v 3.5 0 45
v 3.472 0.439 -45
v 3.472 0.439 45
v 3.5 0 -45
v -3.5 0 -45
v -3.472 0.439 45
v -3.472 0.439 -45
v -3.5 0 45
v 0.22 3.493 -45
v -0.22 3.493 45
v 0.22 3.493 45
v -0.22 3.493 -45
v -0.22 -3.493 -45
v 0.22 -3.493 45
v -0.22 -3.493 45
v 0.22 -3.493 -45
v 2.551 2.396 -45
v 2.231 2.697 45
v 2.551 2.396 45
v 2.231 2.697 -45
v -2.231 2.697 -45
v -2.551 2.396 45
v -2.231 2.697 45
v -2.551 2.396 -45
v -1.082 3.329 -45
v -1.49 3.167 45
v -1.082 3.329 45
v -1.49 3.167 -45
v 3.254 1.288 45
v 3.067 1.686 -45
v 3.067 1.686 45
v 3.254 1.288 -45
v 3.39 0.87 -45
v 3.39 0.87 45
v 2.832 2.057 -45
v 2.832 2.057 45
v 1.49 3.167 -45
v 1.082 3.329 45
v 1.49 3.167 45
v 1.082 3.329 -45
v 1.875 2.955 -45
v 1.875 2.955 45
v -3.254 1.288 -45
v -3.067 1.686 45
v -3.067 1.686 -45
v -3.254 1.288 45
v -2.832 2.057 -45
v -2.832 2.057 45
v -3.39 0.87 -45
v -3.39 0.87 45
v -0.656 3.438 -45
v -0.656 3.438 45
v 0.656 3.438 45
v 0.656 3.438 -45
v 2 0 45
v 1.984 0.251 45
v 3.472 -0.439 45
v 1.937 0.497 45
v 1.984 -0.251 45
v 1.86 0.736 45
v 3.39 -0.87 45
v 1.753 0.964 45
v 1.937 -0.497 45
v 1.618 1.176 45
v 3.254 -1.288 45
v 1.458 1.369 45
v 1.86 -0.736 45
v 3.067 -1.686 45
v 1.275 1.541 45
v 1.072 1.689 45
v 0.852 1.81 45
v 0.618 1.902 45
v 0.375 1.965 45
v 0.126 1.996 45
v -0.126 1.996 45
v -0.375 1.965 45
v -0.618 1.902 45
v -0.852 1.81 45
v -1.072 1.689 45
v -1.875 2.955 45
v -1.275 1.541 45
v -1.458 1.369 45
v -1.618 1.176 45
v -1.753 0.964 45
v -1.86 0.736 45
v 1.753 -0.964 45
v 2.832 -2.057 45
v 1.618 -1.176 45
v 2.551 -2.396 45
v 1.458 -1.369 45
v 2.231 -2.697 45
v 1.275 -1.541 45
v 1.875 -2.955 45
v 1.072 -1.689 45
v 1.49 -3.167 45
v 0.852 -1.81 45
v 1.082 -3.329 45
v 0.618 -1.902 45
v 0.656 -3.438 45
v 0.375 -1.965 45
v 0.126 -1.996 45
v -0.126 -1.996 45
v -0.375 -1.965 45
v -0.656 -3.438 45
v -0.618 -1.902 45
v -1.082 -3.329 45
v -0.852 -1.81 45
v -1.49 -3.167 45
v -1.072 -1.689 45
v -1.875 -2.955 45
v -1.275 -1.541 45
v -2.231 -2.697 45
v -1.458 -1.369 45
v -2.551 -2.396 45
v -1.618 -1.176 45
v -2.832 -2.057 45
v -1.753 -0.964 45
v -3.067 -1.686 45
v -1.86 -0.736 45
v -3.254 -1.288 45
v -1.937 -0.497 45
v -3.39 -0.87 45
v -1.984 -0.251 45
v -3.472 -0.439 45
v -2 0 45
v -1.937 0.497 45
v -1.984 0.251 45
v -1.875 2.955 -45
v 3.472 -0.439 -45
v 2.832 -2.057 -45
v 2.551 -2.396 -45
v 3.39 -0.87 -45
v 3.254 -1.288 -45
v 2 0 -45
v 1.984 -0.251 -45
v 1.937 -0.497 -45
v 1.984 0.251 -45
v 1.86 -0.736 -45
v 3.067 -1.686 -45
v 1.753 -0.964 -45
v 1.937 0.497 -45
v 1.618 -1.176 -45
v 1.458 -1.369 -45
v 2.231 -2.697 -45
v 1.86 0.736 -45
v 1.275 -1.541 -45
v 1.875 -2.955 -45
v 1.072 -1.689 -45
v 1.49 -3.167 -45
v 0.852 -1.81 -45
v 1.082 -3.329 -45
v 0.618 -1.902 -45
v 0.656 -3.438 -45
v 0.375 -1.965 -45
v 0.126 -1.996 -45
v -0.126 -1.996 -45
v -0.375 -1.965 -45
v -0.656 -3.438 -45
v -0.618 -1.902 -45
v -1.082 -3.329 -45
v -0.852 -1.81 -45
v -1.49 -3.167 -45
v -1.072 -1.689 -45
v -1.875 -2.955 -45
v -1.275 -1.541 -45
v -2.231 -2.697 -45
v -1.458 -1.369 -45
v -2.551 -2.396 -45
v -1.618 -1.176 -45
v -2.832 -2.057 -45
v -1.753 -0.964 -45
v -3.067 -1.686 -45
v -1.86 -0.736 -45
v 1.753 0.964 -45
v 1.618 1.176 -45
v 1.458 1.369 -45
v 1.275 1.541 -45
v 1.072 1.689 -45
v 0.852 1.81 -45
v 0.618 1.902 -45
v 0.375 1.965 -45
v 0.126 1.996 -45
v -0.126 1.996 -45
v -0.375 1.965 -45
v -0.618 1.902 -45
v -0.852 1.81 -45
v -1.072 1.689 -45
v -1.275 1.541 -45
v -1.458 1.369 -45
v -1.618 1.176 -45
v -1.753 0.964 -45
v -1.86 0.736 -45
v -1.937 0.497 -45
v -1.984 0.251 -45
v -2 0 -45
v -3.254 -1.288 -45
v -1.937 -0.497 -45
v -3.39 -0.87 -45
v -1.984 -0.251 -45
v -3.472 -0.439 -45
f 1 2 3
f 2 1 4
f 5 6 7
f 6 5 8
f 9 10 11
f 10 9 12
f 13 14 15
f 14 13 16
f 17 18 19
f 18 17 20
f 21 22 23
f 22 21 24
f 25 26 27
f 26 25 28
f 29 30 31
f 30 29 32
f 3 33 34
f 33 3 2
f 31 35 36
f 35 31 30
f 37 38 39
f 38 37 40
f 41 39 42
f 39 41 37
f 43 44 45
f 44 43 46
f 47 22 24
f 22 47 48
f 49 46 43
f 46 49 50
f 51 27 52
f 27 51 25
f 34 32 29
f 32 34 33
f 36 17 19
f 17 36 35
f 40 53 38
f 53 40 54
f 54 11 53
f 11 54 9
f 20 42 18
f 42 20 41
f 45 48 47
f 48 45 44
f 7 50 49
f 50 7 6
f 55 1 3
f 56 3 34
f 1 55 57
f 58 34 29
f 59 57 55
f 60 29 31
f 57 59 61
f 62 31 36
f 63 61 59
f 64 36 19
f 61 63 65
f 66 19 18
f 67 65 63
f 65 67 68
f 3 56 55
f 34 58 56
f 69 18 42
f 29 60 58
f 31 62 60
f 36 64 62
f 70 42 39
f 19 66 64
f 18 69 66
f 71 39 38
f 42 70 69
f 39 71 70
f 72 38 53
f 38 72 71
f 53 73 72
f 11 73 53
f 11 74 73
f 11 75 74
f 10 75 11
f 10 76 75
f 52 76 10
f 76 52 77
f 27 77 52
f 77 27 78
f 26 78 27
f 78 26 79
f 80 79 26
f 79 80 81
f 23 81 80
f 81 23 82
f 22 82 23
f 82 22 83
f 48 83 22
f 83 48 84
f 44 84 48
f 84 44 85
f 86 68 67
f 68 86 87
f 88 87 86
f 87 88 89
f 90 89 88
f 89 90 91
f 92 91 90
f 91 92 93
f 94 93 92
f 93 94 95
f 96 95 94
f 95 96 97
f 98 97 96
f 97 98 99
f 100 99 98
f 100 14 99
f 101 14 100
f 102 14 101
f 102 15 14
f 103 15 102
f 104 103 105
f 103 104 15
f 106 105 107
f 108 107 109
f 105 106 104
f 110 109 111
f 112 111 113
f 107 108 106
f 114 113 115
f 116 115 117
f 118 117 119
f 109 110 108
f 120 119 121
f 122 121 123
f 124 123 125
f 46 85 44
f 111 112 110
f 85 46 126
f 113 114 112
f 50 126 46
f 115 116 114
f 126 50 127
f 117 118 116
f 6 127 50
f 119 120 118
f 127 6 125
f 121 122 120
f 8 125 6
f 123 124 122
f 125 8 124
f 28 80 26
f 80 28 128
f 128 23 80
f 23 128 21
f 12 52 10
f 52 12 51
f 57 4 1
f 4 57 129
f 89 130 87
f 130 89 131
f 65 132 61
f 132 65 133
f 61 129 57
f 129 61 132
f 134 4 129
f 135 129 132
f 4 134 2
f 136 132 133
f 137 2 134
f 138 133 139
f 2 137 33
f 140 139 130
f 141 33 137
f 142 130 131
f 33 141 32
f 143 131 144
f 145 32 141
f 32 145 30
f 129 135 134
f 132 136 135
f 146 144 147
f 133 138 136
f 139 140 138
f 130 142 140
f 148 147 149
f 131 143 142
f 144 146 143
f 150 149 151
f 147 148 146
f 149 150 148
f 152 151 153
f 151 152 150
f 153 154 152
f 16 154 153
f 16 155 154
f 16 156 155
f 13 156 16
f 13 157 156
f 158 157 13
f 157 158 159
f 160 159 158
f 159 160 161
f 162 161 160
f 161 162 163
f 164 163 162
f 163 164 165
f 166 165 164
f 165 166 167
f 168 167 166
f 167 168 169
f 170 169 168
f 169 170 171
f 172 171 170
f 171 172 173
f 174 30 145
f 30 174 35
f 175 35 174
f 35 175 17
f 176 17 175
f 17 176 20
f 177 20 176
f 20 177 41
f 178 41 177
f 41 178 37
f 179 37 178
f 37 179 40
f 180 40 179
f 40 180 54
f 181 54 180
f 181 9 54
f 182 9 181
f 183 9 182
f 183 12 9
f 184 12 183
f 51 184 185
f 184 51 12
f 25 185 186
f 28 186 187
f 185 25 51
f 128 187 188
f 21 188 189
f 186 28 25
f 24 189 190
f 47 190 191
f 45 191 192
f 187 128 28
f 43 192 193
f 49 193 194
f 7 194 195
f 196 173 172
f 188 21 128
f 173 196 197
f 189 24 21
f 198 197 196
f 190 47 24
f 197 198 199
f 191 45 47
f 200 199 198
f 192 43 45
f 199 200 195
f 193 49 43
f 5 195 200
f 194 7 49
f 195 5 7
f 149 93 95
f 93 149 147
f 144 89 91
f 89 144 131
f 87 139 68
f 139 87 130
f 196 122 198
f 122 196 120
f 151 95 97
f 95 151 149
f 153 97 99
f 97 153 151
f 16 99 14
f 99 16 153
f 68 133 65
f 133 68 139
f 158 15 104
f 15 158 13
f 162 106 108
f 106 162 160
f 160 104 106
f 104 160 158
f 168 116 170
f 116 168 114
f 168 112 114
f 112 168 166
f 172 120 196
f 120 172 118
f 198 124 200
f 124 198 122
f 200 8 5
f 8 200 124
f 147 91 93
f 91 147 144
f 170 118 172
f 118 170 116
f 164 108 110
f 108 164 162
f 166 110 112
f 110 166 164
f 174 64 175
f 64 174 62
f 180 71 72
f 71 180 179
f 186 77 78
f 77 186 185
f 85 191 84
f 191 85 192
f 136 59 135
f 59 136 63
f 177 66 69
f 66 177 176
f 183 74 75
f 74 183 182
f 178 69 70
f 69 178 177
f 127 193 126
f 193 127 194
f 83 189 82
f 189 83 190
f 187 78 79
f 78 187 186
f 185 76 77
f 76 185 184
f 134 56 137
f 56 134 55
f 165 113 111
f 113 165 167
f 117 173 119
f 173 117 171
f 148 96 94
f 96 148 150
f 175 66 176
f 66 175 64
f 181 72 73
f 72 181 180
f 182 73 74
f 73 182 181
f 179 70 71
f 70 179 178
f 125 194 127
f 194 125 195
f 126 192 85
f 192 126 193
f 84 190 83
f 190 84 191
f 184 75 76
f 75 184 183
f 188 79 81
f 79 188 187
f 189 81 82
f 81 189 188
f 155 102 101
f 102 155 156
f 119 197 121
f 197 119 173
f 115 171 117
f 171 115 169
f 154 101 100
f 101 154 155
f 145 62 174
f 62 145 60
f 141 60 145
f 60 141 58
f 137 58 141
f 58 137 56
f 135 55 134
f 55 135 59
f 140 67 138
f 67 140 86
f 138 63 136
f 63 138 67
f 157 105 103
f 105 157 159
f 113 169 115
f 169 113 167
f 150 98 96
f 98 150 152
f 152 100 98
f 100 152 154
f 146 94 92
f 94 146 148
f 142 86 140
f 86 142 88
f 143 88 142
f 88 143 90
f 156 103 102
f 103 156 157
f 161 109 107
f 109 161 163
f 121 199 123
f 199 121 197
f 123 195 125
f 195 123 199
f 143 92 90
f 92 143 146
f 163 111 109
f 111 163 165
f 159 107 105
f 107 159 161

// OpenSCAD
$fn = 50;


difference() {
	union() {
		translate(v = [0, 0, -45.0000000000]) {
			cylinder(h = 90, r = 3.5000000000);
		}
	}
	union() {
		translate(v = [0, 0, -100.0000000000]) {
			cylinder(h = 200, r = 2);
		}
	}
}
